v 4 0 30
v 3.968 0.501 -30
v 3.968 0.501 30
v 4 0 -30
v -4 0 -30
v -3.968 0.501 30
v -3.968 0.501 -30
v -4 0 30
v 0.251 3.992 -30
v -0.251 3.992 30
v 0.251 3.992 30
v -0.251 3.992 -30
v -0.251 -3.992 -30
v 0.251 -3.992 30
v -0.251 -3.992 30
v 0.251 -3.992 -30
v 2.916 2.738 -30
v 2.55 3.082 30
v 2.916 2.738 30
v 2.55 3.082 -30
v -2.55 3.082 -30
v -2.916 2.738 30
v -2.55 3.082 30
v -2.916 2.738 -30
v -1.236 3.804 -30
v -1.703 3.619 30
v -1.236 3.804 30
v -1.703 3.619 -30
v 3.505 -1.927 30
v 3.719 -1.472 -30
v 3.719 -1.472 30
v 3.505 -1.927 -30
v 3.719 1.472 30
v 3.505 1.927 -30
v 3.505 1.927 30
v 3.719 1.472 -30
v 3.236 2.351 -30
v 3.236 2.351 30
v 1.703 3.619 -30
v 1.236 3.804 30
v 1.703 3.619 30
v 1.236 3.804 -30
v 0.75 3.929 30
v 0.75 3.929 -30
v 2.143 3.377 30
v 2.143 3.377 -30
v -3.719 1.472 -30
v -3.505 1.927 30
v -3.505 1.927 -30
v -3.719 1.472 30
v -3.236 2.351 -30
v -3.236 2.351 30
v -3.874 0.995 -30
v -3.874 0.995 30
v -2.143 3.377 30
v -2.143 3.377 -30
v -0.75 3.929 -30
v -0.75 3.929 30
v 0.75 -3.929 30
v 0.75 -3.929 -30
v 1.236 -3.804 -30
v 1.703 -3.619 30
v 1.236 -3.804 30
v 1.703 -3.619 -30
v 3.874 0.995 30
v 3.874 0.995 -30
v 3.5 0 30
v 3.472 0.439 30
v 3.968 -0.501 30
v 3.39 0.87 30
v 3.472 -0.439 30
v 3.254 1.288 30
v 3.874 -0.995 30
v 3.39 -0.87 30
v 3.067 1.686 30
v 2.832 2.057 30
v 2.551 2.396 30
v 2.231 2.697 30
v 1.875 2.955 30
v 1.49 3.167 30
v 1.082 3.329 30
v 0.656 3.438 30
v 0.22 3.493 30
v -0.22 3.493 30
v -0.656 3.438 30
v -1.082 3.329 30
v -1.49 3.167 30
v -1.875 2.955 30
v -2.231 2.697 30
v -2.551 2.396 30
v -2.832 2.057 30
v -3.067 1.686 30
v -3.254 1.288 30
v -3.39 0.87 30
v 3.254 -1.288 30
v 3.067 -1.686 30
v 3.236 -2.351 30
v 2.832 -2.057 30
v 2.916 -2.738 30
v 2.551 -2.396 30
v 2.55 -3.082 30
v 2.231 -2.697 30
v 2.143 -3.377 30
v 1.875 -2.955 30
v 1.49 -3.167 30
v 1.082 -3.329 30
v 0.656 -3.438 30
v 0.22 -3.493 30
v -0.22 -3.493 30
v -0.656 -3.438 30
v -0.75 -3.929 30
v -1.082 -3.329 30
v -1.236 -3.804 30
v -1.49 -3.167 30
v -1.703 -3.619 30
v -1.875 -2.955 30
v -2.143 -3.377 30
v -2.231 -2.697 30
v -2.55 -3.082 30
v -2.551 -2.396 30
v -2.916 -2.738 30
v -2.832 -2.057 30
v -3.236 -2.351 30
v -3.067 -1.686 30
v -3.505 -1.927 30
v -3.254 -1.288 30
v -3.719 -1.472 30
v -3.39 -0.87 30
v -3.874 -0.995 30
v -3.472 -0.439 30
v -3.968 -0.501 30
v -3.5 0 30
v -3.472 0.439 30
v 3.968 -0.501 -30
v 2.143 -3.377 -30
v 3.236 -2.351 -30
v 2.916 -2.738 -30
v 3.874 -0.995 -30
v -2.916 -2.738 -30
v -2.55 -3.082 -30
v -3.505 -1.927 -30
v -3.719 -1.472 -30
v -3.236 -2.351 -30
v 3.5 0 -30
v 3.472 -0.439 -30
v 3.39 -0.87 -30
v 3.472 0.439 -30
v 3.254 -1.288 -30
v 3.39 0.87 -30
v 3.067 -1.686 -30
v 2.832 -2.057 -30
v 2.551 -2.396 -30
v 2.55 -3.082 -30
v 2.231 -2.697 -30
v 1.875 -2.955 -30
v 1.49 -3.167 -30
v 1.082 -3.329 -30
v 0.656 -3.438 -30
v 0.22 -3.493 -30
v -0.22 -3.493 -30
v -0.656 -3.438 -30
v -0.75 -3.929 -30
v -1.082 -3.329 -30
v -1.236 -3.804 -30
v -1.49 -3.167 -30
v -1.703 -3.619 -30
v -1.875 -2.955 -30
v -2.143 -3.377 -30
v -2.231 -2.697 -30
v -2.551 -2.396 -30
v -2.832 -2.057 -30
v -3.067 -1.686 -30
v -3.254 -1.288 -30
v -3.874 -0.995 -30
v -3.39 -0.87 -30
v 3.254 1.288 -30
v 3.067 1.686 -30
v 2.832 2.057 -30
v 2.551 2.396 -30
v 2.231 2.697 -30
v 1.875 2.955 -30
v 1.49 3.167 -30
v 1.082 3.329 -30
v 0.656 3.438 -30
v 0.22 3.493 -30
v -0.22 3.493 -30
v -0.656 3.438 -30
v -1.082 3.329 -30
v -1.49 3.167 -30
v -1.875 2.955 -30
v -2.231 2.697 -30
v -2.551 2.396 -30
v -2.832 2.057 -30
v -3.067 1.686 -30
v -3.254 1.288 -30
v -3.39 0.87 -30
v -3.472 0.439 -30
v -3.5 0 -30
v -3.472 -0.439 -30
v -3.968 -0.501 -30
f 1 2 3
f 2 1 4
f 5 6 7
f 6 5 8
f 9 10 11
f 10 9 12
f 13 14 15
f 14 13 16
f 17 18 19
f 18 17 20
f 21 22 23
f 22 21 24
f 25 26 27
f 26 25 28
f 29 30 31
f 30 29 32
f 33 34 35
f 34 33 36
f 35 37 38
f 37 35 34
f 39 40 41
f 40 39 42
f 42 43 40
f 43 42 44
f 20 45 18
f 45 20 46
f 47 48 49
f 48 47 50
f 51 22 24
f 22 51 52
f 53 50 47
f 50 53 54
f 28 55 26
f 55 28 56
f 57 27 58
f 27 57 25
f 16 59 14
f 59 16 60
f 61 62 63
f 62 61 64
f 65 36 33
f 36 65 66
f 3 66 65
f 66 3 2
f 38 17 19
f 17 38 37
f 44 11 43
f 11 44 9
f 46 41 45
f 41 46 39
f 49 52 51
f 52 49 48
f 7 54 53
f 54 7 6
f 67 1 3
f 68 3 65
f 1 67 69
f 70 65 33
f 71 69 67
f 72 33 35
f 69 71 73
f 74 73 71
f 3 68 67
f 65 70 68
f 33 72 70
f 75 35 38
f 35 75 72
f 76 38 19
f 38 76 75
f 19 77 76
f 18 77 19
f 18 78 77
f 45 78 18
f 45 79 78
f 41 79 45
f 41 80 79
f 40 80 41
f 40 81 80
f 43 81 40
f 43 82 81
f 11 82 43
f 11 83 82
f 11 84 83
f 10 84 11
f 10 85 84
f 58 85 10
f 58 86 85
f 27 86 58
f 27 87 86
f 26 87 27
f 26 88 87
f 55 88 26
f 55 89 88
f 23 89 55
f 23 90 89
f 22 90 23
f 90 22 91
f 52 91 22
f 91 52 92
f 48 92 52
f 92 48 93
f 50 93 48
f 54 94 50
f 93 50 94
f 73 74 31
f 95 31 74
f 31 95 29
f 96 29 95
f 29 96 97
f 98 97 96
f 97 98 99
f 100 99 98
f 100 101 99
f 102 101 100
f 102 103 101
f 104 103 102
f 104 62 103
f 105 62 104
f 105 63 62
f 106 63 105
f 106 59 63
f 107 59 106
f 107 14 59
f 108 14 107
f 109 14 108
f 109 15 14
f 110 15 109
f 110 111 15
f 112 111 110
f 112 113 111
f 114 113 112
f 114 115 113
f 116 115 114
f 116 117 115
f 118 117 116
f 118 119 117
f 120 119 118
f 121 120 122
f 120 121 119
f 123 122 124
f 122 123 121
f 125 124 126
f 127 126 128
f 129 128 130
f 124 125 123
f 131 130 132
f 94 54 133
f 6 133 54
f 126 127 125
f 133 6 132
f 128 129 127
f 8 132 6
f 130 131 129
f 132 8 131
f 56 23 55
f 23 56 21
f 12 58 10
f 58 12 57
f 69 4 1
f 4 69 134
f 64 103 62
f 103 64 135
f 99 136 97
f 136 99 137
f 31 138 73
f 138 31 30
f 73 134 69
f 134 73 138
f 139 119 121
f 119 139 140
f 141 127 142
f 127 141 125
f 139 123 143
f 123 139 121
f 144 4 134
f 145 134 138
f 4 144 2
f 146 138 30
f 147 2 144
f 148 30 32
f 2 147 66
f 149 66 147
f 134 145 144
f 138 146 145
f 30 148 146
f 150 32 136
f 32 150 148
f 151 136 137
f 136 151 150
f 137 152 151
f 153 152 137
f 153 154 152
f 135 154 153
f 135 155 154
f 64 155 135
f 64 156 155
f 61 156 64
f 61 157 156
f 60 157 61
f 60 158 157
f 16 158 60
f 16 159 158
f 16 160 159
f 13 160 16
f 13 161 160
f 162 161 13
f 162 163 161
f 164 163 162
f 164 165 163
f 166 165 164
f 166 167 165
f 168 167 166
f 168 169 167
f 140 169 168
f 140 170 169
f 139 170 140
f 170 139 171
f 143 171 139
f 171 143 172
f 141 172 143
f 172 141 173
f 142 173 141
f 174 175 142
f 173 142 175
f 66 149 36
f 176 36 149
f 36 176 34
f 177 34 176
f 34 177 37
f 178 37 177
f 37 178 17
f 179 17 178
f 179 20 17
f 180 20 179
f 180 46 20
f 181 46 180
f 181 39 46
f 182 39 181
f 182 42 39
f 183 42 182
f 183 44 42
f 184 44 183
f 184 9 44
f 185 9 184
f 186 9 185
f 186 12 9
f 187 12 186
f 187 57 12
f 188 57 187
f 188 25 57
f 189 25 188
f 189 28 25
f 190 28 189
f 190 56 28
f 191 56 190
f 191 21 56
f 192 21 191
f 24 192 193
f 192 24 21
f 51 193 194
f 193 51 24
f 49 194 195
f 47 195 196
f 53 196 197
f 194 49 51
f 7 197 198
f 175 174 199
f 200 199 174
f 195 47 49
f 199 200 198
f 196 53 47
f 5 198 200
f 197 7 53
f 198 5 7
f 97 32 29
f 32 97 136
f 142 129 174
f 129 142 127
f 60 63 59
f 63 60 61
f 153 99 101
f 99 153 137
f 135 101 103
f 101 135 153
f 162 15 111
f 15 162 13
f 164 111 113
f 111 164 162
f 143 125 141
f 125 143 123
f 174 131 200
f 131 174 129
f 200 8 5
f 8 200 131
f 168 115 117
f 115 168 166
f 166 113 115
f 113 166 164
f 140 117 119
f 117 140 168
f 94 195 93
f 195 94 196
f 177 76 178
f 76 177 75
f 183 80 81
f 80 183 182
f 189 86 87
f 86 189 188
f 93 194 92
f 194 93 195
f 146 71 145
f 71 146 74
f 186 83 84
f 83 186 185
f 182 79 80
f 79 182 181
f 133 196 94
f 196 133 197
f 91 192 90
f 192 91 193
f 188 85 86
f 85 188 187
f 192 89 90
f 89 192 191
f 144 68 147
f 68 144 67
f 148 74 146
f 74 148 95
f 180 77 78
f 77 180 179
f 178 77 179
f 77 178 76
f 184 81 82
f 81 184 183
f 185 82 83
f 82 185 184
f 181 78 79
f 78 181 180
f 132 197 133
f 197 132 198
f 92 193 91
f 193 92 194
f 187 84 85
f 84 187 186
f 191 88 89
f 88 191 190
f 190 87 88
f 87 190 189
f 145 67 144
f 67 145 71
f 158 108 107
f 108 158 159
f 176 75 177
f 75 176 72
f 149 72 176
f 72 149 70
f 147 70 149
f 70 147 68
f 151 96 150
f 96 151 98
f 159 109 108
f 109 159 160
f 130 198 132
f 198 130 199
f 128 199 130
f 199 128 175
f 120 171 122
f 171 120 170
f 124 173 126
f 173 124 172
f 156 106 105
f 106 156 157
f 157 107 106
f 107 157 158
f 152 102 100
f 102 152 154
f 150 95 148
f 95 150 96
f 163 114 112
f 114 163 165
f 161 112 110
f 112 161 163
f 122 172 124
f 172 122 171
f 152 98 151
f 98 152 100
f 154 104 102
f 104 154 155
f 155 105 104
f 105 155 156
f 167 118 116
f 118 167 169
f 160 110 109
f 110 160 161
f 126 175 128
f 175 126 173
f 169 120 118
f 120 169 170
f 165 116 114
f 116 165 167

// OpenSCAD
$fn = 50;


difference() {
	union() {
		translate(v = [0, 0, -30.0000000000]) {
			cylinder(h = 60, r = 4.0000000000);
		}
	}
	union() {
		translate(v = [0, 0, -100.0000000000]) {
			cylinder(h = 200, r = 3.5000000000);
		}
	}
}
